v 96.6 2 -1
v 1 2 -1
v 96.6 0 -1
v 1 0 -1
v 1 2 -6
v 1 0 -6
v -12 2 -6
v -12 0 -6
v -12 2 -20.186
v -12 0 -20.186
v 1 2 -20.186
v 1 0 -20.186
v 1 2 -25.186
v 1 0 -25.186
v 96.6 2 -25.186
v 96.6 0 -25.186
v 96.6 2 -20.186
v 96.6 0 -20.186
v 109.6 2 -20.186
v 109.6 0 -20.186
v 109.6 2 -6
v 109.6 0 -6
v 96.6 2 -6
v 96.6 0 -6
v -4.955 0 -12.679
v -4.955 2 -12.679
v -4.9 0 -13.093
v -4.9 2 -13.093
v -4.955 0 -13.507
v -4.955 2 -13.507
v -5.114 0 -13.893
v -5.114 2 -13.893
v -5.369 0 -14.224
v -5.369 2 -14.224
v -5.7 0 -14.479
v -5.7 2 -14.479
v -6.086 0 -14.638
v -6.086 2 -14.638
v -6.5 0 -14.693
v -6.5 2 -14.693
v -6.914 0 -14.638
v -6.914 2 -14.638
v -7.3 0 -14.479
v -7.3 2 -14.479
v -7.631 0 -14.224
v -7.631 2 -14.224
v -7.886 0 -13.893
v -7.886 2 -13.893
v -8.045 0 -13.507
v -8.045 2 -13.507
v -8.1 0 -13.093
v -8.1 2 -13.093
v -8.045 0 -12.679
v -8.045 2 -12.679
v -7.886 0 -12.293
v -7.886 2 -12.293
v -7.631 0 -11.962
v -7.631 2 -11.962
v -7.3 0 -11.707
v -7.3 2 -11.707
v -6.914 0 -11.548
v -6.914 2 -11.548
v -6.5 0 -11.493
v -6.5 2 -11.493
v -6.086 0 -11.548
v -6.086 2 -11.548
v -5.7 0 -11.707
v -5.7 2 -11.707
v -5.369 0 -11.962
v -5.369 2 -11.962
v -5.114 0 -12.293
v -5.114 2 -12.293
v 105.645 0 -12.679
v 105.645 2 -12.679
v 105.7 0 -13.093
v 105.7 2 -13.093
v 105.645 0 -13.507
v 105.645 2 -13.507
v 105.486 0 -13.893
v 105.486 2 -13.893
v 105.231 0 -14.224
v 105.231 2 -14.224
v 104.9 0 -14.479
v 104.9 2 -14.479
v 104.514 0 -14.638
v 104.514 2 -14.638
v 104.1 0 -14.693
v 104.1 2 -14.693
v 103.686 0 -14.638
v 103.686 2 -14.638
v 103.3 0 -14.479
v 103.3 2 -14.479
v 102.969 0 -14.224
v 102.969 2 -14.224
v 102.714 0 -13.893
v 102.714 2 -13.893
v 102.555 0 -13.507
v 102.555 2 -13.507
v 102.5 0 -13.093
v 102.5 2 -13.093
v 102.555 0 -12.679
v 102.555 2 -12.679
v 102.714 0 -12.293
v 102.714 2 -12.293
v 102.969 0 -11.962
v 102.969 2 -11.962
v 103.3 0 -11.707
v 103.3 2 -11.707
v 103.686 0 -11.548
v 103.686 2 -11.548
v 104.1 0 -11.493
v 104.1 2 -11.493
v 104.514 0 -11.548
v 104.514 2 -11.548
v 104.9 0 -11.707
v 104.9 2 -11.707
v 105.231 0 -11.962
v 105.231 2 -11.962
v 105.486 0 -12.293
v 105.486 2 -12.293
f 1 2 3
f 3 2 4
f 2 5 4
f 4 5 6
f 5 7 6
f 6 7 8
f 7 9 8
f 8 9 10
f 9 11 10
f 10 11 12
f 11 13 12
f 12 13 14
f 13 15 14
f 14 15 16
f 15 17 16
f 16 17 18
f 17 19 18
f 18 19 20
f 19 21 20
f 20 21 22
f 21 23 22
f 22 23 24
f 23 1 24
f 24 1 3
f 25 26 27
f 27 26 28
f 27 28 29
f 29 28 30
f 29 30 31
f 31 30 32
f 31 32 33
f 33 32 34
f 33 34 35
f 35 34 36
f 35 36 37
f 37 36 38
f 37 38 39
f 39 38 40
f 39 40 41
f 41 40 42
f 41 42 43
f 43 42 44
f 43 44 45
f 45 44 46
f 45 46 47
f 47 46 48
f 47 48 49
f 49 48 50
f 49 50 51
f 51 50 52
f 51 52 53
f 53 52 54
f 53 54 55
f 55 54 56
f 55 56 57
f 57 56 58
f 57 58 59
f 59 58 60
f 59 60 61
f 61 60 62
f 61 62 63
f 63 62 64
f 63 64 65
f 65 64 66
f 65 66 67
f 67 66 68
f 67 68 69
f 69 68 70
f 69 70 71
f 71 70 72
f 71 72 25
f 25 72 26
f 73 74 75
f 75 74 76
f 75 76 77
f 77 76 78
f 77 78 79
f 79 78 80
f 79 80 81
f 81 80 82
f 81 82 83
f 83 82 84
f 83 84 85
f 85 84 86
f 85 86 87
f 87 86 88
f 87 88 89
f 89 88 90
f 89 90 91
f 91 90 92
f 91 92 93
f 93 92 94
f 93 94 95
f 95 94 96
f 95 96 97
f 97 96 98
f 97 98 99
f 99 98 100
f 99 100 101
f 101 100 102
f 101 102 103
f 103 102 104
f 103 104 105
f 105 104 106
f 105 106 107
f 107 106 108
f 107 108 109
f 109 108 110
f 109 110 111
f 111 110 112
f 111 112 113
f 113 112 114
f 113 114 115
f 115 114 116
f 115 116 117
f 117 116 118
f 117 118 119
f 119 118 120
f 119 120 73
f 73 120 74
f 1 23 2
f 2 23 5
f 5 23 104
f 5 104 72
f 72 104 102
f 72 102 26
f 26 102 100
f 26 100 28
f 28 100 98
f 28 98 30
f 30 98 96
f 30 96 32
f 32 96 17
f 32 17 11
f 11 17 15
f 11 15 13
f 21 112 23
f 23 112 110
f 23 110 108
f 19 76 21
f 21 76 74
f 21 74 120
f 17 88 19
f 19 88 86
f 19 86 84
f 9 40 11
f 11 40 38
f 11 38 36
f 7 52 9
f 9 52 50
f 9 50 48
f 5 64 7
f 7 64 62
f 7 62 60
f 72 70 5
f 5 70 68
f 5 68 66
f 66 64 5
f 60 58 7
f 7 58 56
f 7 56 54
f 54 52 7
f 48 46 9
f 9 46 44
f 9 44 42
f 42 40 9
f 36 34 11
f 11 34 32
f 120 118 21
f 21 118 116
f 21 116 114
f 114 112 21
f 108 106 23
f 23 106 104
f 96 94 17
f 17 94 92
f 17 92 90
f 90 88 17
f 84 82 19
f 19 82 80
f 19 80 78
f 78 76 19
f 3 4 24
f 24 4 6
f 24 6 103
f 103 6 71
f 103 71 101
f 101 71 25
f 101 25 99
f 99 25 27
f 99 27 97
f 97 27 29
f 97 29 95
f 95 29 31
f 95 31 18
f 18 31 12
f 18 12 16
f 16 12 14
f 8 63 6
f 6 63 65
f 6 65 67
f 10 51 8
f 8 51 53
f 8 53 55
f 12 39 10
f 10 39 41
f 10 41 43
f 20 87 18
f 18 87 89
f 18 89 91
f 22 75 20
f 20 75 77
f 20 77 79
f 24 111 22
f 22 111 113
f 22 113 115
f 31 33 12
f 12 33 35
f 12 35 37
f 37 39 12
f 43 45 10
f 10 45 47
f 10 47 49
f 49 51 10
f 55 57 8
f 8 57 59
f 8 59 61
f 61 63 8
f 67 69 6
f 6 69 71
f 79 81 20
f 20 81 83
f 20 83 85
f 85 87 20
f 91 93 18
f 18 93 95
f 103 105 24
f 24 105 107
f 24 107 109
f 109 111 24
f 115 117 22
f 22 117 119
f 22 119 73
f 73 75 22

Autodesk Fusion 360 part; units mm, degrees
sketch "Boceto1" plane through (0, 0, 0) normal (0, 1, 0) x (1, 0, 0)
  line L0 (0, 0) -> (97.6, 0)
  line L1 (97.6, 0) -> (97.6, 26.186)
  line L2 (97.6, 26.186) -> (0, 26.186)
  line L3 (0, 26.186) -> (0, 0)
  dimension "d1" = 97.6
  dimension "d2" = 26.186
extrude "Extruir1" add sketch "Boceto1" along normal blind 2
sketch "Boceto2" plane through (0, 2, 0) normal (0, 1, 0) x (-1, 0, 0)
  line L0 (0, -26.186) -> (0, 0)
  line L1 (0, 0) -> (-97.6, 0)
  line L2 (-97.6, 0) -> (-97.6, -26.186)
  line L3 (-97.6, -26.186) -> (0, -26.186)
  line L4 (-97.6, -26.186) -> (-97.6, -13.093)
  line L5 (-97.6, -13.093) -> (-104.1, -13.093)
  circle A0 centre (-104.1, -13.093) radius 1.6
  line L6 (-97.6, -26.186) -> (-97.6, -21.186)
  line L7 (-97.6, -21.186) -> (-110.6, -21.186)
  line L8 (-110.6, -21.186) -> (-110.6, -5)
  line L9 (-110.6, -5) -> (-97.6, -5)
  line L10 (-97.6, -5) -> (-97.6, -21.186)
  dimension "d5" = 13.093
  dimension "d6" = 6.5
  dimension "d7" = 3.2
  dimension "d8" = 5
  dimension "d9" = 13
  dimension "d10" = 16.186
extrude "Extruir2" add sketch "Boceto2" against normal blind 2 contours L2 L4 L7 L8 L9 L10
sketch "Boceto3" plane through (0, 2, 0) normal (0, 1, 0) x (-1, 0, 0)
  circle A0 centre (-104.1, -13.093) radius 1.6
  line L0 (0, -26.186) -> (0, 0)
  line L1 (0, 0) -> (-97.6, 0)
  line L2 (-97.6, 0) -> (-97.6, -5)
  line L3 (-97.6, -5) -> (-110.6, -5)
  line L4 (-110.6, -5) -> (-110.6, -21.186)
  line L5 (-110.6, -21.186) -> (-97.6, -21.186)
  line L6 (-97.6, -21.186) -> (-97.6, -26.186)
  line L7 (-97.6, -26.186) -> (0, -26.186)
  line L8 (0, -26.186) -> (0, -21.186)
  line L9 (0, -21.186) -> (13, -21.186)
  line L10 (13, -21.186) -> (13, -5)
  line L11 (13, -5) -> (0, -5)
  line L12 (0, -5) -> (0, -21.186)
  line L13 (0, -26.186) -> (0, -13.093)
  line L14 (0, -13.093) -> (6.5, -13.093)
  circle A1 centre (6.5, -13.093) radius 1.6
  dimension "d13" = 5
  dimension "d14" = 13
  dimension "d15" = 16.186
  dimension "d16" = 13.093
  dimension "d17" = 6.5
  dimension "d18" = 3.2
extrude "Extruir3" add sketch "Boceto3" against normal blind 2 contours L0 L9 L10 L11 L12 L13
sketch "Boceto4" plane through (0, 2, 0) normal (0, 1, 0) x (-1, 0, 0)
  circle A0 centre (6.5, -13.093) radius 1.6
  circle A1 centre (-104.1, -13.093) radius 1.6
  line L0 (0, -26.186) -> (0, -21.186)
  line L1 (0, -21.186) -> (13, -21.186)
  line L2 (13, -21.186) -> (13, -5)
  line L3 (13, -5) -> (0, -5)
  line L4 (0, -5) -> (0, 0)
  line L5 (0, 0) -> (-97.6, 0)
  line L6 (-97.6, 0) -> (-97.6, -5)
  line L7 (-97.6, -5) -> (-110.6, -5)
  line L8 (-110.6, -5) -> (-110.6, -21.186)
  line L9 (-110.6, -21.186) -> (-97.6, -21.186)
  line L10 (-97.6, -21.186) -> (-97.6, -26.186)
  line L11 (-97.6, -26.186) -> (0, -26.186)
  line L12 (-96.6, -6) -> (-109.6, -6)
  line L13 (-109.6, -6) -> (-109.6, -20.186)
  line L14 (-109.6, -20.186) -> (-96.6, -20.186)
  line L15 (-96.6, -20.186) -> (-96.6, -25.186)
  line L16 (-96.6, -25.186) -> (-1, -25.186)
  line L17 (-1, -25.186) -> (-1, -20.186)
  line L18 (-1, -20.186) -> (12, -20.186)
  line L19 (12, -20.186) -> (12, -6)
  line L20 (12, -6) -> (-1, -6)
  line L21 (-1, -6) -> (-1, -1)
  line L22 (-1, -1) -> (-96.6, -1)
  line L23 (-96.6, -1) -> (-96.6, -6)
  dimension "d21" = -1
extrude "Extruir4" cut sketch "Boceto4" against normal blind 2 contours L0 L1 L2 L3 L4 L5 L6 L7 L8 L9 L10 L11
equation "d5 = 26.186 * 0.5 mm"
equation "d6 = ( 13 * 0.5 ) * 1 mm"
equation "d10 = 21.186 mm - 5 mm"
equation "d15 = 21.186 mm - 5 mm"
equation "d16 = 26.186 * 0.5 mm"
equation "d17 = 13.000 * 0.5 mm"
